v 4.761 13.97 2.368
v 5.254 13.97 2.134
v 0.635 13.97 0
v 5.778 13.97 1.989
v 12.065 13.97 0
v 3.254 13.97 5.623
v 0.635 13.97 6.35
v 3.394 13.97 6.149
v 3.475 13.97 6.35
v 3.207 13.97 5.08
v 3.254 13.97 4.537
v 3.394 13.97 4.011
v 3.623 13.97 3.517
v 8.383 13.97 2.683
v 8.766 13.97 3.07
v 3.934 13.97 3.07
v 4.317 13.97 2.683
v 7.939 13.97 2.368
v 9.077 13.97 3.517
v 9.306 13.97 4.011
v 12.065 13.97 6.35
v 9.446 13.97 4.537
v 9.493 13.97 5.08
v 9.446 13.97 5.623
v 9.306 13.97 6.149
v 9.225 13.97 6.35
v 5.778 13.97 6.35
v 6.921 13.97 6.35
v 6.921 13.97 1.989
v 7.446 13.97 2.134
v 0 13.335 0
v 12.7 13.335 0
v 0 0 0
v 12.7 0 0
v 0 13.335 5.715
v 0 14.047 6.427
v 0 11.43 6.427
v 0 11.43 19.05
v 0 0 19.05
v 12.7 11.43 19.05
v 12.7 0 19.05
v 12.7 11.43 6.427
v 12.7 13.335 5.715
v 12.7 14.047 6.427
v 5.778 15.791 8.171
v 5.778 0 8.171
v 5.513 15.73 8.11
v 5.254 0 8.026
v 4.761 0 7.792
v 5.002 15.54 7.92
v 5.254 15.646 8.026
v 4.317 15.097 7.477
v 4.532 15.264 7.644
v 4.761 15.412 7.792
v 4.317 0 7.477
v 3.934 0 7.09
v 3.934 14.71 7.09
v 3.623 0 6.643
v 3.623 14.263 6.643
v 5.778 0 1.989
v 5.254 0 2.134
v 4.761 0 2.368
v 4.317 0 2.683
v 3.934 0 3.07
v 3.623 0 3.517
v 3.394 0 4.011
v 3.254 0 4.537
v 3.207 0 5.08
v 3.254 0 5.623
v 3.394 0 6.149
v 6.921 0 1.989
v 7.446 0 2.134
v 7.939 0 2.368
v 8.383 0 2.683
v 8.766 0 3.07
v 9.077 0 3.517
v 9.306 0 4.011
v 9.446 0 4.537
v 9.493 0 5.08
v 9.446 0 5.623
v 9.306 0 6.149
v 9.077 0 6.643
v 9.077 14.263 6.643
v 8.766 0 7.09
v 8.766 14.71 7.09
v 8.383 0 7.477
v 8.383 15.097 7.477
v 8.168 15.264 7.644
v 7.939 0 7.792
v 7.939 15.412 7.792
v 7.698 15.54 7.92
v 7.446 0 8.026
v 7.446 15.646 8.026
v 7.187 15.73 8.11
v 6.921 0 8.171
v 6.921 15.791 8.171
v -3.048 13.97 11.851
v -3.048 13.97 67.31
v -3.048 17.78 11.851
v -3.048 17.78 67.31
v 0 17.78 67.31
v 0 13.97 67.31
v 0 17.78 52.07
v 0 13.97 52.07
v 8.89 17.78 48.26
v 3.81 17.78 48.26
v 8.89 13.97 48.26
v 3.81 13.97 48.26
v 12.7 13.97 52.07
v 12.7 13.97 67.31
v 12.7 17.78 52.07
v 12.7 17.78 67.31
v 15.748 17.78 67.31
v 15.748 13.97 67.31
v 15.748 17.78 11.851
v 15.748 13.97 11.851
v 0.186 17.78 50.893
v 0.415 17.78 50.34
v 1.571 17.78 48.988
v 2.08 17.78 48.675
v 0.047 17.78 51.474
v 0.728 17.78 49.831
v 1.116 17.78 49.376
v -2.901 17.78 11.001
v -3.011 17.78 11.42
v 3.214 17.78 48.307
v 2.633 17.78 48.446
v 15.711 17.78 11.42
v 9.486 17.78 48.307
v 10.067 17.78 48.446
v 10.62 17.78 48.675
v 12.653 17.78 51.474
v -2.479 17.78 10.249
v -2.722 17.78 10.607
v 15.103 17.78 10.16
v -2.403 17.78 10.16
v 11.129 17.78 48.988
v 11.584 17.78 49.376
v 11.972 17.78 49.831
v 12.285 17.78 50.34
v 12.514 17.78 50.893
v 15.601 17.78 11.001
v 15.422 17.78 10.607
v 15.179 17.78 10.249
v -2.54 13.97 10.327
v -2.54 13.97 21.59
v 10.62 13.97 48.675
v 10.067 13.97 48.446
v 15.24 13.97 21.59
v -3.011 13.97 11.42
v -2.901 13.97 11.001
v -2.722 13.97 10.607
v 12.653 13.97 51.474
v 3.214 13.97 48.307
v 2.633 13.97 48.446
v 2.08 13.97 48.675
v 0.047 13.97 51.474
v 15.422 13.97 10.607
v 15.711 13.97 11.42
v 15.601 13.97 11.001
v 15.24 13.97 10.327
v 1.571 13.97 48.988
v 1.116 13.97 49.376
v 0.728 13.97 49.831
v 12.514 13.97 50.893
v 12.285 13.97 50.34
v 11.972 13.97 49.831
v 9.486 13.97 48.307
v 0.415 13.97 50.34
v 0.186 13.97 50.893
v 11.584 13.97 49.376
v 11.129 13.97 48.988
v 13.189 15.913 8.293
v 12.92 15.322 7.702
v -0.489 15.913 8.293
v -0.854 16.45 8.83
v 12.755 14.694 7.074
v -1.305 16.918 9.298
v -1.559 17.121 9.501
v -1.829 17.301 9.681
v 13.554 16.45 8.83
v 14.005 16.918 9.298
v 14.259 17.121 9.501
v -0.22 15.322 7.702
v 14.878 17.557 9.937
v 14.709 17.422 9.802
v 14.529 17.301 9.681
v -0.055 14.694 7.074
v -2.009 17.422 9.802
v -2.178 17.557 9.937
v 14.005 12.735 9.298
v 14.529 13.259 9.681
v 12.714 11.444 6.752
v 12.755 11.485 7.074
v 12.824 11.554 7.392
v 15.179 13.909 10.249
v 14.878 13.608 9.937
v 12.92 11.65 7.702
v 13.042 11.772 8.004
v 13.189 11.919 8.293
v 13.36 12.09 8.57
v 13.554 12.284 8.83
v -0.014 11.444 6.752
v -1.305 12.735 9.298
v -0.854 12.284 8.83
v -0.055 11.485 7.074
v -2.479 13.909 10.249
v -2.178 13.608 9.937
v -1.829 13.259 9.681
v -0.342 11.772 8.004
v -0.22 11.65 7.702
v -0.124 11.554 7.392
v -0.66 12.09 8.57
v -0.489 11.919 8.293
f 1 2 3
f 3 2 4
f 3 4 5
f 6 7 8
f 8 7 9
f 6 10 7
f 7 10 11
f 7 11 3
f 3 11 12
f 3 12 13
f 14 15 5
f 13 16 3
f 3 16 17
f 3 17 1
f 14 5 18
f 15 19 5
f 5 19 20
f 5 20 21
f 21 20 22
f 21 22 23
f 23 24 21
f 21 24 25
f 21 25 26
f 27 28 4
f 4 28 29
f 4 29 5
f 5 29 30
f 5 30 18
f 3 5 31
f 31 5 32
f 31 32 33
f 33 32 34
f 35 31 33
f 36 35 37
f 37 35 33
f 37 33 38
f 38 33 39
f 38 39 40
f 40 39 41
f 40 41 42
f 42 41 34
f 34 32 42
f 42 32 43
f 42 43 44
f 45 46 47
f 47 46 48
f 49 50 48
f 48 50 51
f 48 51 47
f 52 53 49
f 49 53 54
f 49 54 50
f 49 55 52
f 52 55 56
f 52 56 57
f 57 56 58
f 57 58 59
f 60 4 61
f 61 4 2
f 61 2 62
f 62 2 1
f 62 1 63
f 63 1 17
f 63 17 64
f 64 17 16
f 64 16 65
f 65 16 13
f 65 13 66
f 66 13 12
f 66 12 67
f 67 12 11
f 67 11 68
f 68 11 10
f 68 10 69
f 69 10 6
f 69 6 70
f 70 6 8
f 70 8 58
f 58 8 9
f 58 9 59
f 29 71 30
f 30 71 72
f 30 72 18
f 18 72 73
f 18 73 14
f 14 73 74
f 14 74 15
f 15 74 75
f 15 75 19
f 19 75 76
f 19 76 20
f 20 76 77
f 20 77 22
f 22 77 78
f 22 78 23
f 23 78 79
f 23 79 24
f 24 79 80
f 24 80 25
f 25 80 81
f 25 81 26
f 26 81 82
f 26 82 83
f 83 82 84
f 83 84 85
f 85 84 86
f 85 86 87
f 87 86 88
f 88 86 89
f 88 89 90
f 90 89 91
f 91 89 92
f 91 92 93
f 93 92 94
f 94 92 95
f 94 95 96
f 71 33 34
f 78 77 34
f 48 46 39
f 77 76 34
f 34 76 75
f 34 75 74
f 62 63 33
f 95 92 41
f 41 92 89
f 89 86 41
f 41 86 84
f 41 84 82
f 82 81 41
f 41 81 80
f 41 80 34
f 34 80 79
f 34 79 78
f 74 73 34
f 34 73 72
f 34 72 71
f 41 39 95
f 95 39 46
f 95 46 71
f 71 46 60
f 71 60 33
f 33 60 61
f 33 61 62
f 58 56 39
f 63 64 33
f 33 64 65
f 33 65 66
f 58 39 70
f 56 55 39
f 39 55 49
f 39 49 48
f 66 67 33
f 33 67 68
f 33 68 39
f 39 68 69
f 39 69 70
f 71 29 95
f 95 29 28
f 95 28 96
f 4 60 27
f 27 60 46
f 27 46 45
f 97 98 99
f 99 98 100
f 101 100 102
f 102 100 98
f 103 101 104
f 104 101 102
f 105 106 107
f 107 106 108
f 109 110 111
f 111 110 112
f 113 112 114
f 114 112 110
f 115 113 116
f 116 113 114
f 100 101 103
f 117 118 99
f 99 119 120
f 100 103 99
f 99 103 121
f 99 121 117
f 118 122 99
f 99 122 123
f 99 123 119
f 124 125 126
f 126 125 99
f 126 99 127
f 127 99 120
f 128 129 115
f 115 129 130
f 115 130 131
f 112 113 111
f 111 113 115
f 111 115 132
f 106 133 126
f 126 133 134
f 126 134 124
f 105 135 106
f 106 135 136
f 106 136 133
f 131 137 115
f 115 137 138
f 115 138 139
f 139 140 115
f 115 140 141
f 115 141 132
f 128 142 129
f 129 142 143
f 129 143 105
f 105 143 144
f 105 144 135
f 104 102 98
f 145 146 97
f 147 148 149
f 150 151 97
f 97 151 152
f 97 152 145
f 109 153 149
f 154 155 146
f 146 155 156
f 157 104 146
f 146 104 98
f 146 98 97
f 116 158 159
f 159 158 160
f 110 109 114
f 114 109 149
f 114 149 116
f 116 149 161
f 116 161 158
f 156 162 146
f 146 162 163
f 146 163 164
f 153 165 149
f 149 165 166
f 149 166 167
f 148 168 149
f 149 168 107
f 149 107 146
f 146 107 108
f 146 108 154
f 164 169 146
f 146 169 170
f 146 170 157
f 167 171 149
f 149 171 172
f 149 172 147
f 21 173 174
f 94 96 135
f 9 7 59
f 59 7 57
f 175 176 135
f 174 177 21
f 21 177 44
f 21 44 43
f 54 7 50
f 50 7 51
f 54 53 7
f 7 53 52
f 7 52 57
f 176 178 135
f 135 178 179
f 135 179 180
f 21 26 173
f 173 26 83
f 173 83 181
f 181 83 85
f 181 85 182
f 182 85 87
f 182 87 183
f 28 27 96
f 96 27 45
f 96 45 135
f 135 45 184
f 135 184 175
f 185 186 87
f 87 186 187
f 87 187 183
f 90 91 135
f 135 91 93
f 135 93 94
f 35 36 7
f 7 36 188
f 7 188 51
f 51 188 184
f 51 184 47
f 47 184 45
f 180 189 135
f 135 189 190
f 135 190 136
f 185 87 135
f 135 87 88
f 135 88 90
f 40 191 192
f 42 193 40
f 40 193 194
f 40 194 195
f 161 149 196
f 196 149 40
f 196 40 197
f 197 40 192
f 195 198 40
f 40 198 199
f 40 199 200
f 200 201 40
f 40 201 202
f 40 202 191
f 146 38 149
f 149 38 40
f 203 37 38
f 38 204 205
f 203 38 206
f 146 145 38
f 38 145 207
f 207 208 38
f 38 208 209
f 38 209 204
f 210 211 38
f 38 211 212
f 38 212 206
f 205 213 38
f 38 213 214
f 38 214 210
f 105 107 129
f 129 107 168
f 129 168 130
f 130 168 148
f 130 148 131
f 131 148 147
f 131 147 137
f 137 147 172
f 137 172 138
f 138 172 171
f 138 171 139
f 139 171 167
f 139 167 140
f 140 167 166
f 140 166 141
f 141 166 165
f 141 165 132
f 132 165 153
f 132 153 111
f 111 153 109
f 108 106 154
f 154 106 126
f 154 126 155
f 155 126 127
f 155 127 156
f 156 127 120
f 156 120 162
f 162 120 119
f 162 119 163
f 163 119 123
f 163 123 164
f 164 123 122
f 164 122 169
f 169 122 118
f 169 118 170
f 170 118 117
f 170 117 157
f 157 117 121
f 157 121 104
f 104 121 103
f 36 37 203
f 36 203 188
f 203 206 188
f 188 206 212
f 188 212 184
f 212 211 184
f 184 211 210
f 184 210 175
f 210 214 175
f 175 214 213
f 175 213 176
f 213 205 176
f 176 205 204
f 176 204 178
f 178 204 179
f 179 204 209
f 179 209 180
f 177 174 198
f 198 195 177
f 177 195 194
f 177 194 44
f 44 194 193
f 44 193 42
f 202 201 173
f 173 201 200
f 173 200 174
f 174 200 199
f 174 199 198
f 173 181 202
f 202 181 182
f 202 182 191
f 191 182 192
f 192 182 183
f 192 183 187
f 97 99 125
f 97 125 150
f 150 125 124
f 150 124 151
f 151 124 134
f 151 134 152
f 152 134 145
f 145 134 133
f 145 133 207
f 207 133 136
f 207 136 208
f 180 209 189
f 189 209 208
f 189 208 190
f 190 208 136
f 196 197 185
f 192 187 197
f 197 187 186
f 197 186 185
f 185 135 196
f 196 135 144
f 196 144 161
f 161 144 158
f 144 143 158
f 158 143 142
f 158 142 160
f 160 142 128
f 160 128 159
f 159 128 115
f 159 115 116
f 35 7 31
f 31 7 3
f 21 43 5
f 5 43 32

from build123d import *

# Parameters (mm, degrees)
SKETCH1_W           = 12.7
SKETCH1_H           = 19.05
BOSS_EXTRUDE1_DEPTH = 13.97
SKETCH2_W           = 12.7
SKETCH2_H           = 8.89
BOSS_EXTRUDE2_DEPTH = 3.81
CHAMFER3_SIZE       = 3.81
CHAMFER5_SIZE       = 2.54
FILLET1_R           = 3.81
FILLET2_R           = 3.81
FILLET3_R           = 2.54
CHAMFER6_SIZE       = 0.635


with BuildPart() as part:
    # Sketch1 → Boss-Extrude1 (new body)
    with BuildSketch(Plane(origin=(0, 0, 0), x_dir=(1, 0, 0), z_dir=(0, 1, 0))):
        with Locations((6.35, -9.525)):
            Rectangle(SKETCH1_W, SKETCH1_H)
        with BuildLine():
            Line((5.7785, -1.989141169), (5.7785, -8.170858831))
            ThreePointArc((5.7785, -8.170858831), (3.20675, -5.08), (5.7785, -1.989141169))
        make_face(mode=Mode.SUBTRACT)
        with BuildLine():
            ThreePointArc((6.9215, -1.989141169), (9.49325, -5.08), (6.9215, -8.170858831))
            Line((6.9215, -8.170858831), (6.9215, -1.989141169))
        make_face(mode=Mode.SUBTRACT)
    extrude(amount=BOSS_EXTRUDE1_DEPTH)

    # Sketch2 → Boss-Extrude2 (add)
    with BuildSketch(Plane(origin=(0, 13.97, 0), x_dir=(1, 0, 0), z_dir=(0, 1, 0))):
        Polygon((0, -10.16), (-3.048, -10.16), (-3.048, -67.31), (0, -67.31), (0, -48.26), (12.7, -48.26), (12.7, -67.31), (15.748, -67.31), (15.748, -10.16), (12.7, -10.16), (12.7, -19.05), (0, -19.05), align=None)
        with Locations((6.35, -14.605)):
            Rectangle(SKETCH2_W, SKETCH2_H)
    extrude(amount=BOSS_EXTRUDE2_DEPTH)

    # Chamfer3
    # the kernel refuses this chamfer: 3.81 mm, written as the material it adds along each edge
    with BuildSketch(Plane(origin=(12.7, 13.97, 10.16), x_dir=(0, -0.027495876610586382, -0.9996219169112968), z_dir=(-1, 0, 0))) as chamfer3_piece_1_section:
        Polygon((CHAMFER3_SIZE * 0.999621916911, -CHAMFER3_SIZE * 0.0274958766106), (-CHAMFER3_SIZE * 0.0274958766106, -CHAMFER3_SIZE * 0.999621916911), (0, 0), align=None)
    chamfer3_piece_1 = extrude(amount=12.7, mode=Mode.PRIVATE)
    chamfer3_piece_1 = chamfer3_piece_1 - Plane(origin=(6.35, 15.278434863, 5.08), x_dir=(-0.18181818181819312, 0, 0.9833321660356314), z_dir=(0, -1, 0)) * Cylinder(3.14325, 41, mode=Mode.PRIVATE)
    add(chamfer3_piece_1)
    with BuildSketch(Plane(origin=(22.498112184, 13.97, 10.16), x_dir=(0, -0.027495876610586382, -0.9996219169112968), z_dir=(-1, 0, 0))) as chamfer3_piece_2_section:
        Polygon((CHAMFER3_SIZE * 0.999621916911, -CHAMFER3_SIZE * 0.0274958766106), (-CHAMFER3_SIZE * 0.0274958766106, -CHAMFER3_SIZE * 0.999621916911), (0, 0), align=None)
    chamfer3_piece_2 = extrude(amount=32.296224368, mode=Mode.PRIVATE)
    chamfer3_piece_2 = split(chamfer3_piece_2, bisect_by=Plane(origin=(5.7785, 14.588702158, 7.587404322), z_dir=(1, 0, 0)), keep=Keep.TOP, mode=Mode.PRIVATE)
    chamfer3_piece_2 = split(chamfer3_piece_2, bisect_by=Plane(origin=(6.9215, 14.588702158, 7.587404322), z_dir=(-1, 0, 0)), keep=Keep.TOP, mode=Mode.PRIVATE)
    add(chamfer3_piece_2)

    # Chamfer5
    chamfer5_edges = [part.edges().sort_by_distance(p)[0] for p in [
        (6.35, 13.97, 19.05),
        (12.7, 13.97, 14.605),
        (0, 13.97, 14.605),
    ]]
    chamfer(chamfer5_edges, length=CHAMFER5_SIZE)

    # Fillet1
    fillet1_edges = [part.edges().sort_by_distance(p)[0] for p in [
        (0, 15.875, 48.26),
        (12.7, 15.875, 48.26),
    ]]
    fillet(fillet1_edges, radius=FILLET1_R)

    # Fillet2
    # the kernel refuses this fillet: 3.81 mm, written as the material it adds along each edge
    with BuildSketch(Plane(origin=(0, 2.09744408, 10.16), x_dir=(-1.0, 0, -1.5694648846796446e-12), z_dir=(0, 1, 0))) as fillet2_piece_1_section:
        with BuildLine():
            CenterArc((3.81, -3.733022368), FILLET2_R, 101.536959033, 78.463040967)
            Line((0, -3.733022368), (-0.0762, -3.733022368))
            Line((-0.0762, -3.733022368), (-0.0762, 0))
            Line((-0.0762, 0), (0, 0.0762))
            ThreePointArc((0, 0.0762), (1.524, 0.0762), (3.03276, 0.074660447))
            Line((3.03276, 0.074660447), (3.048, 0))
        make_face()
    fillet2_piece_1 = extrude(amount=15.68255592, mode=Mode.PRIVATE)
    fillet2_piece_1 = split(fillet2_piece_1, bisect_by=Plane(origin=(-0.488499052, 13.97, 9.10243743), z_dir=(0, -1, 0)), keep=Keep.TOP, mode=Mode.PRIVATE)
    fillet2_piece_1 = split(fillet2_piece_1, bisect_by=Plane(origin=(-1.001374289, 12.431374289, 9.10243743), z_dir=(0.7071067811865477, 0.7071067811865475, 0)), keep=Keep.TOP, mode=Mode.PRIVATE)
    add(fillet2_piece_1)
    with BuildSketch(Plane(origin=(0, 2.09744408, 10.16), x_dir=(-1.0, 0, -1.5694648846796446e-12), z_dir=(0, 1, 0))) as fillet2_piece_2_section:
        with BuildLine():
            CenterArc((3.81, -3.733022368), FILLET2_R, 101.536959033, 78.463040967)
            Line((0, -3.733022368), (-0.0762, -3.733022368))
            Line((-0.0762, -3.733022368), (-0.0762, 0))
            Line((-0.0762, 0), (0, 0.0762))
            ThreePointArc((0, 0.0762), (1.524, 0.0762), (3.03276, 0.074660447))
            Line((3.03276, 0.074660447), (3.048, 0))
        make_face()
    fillet2_piece_2 = extrude(amount=15.68255592, mode=Mode.PRIVATE)
    fillet2_piece_2 = split(fillet2_piece_2, bisect_by=Plane(origin=(-2.842111613, 13.97, 10.172095318), z_dir=(0, 1, 0)), keep=Keep.TOP, mode=Mode.PRIVATE)
    fillet2_piece_2 = split(fillet2_piece_2, bisect_by=Plane(origin=(-2.766583712, 14.196583712, 10.172095318), z_dir=(-0.7071067811865477, -0.7071067811865475, 0)), keep=Keep.TOP, mode=Mode.PRIVATE)
    add(fillet2_piece_2)
    with BuildSketch(Plane(origin=(0, 2.09744408, 10.16), x_dir=(-1.0, 0, -1.5694648846796446e-12), z_dir=(0, 1, 0))) as fillet2_piece_3_section:
        with BuildLine():
            CenterArc((3.81, -3.733022368), FILLET2_R, 101.536959033, 78.463040967)
            Line((0, -3.733022368), (-0.0762, -3.733022368))
            Line((-0.0762, -3.733022368), (-0.0762, 0))
            Line((-0.0762, 0), (0, 0.0762))
            ThreePointArc((0, 0.0762), (1.524, 0.0762), (3.03276, 0.074660447))
            Line((3.03276, 0.074660447), (3.048, 0))
        make_face()
    fillet2_piece_3 = extrude(amount=15.68255592, mode=Mode.PRIVATE)
    fillet2_piece_3 = split(fillet2_piece_3, bisect_by=Plane(origin=(-0.871394664, 13.97, 9.510267837), z_dir=(0, 1, 0)), keep=Keep.TOP, mode=Mode.PRIVATE)
    fillet2_piece_3 = split(fillet2_piece_3, bisect_by=Plane(origin=(-2.496213957, 13.926213957, 9.510267837), z_dir=(0.7071067811865477, 0.7071067811865475, 0)), keep=Keep.TOP, mode=Mode.PRIVATE)
    fillet2_piece_3 = split(fillet2_piece_3, bisect_by=Plane(origin=(-0.871394664, 16.340650543, 8.720650543), z_dir=(0, -0.7071067811862648, 0.7071067811868302)), keep=Keep.TOP, mode=Mode.PRIVATE)
    add(fillet2_piece_3)
    with BuildSketch(Plane(origin=(12.7, 17.78, 10.16), x_dir=(1.0, 0, -1.0525263949987076e-12), z_dir=(0, -1, 0))) as fillet2_piece_4_section:
        with BuildLine():
            CenterArc((3.81, -3.733022368), FILLET2_R, 101.536959033, 78.463040967)
            Line((0, -3.733022368), (-0.0762, -3.733022368))
            Line((-0.0762, -3.733022368), (-0.0762, 0))
            Line((-0.0762, 0), (0, 0.0762))
            ThreePointArc((0, 0.0762), (1.524, 0.0762), (3.03276, 0.074660447))
            Line((3.03276, 0.074660447), (3.048, 0))
        make_face()
    fillet2_piece_4 = extrude(amount=15.68255592, mode=Mode.PRIVATE)
    fillet2_piece_4 = split(fillet2_piece_4, bisect_by=Plane(origin=(13.571394664, 13.97, 9.510267837), z_dir=(0, 1, 0)), keep=Keep.TOP, mode=Mode.PRIVATE)
    fillet2_piece_4 = split(fillet2_piece_4, bisect_by=Plane(origin=(15.196213957, 13.926213957, 9.510267837), z_dir=(-0.7071067811865479, 0.7071067811865474, 0)), keep=Keep.TOP, mode=Mode.PRIVATE)
    fillet2_piece_4 = split(fillet2_piece_4, bisect_by=Plane(origin=(13.571394664, 16.340650543, 8.720650543), z_dir=(0, -0.7071067811862648, 0.7071067811868302)), keep=Keep.TOP, mode=Mode.PRIVATE)
    add(fillet2_piece_4)
    with BuildSketch(Plane(origin=(12.7, 17.78, 10.16), x_dir=(1.0, 0, -1.0525263949987076e-12), z_dir=(0, -1, 0))) as fillet2_piece_5_section:
        with BuildLine():
            CenterArc((3.81, -3.733022368), FILLET2_R, 101.536959033, 78.463040967)
            Line((0, -3.733022368), (-0.0762, -3.733022368))
            Line((-0.0762, -3.733022368), (-0.0762, 0))
            Line((-0.0762, 0), (0, 0.0762))
            ThreePointArc((0, 0.0762), (1.524, 0.0762), (3.03276, 0.074660447))
            Line((3.03276, 0.074660447), (3.048, 0))
        make_face()
    fillet2_piece_5 = extrude(amount=15.68255592, mode=Mode.PRIVATE)
    fillet2_piece_5 = split(fillet2_piece_5, bisect_by=Plane(origin=(13.188499052, 13.97, 9.10243743), z_dir=(0, -1, 0)), keep=Keep.TOP, mode=Mode.PRIVATE)
    fillet2_piece_5 = split(fillet2_piece_5, bisect_by=Plane(origin=(13.701374289, 12.431374289, 9.10243743), z_dir=(-0.7071067811865479, 0.7071067811865474, 0)), keep=Keep.TOP, mode=Mode.PRIVATE)
    add(fillet2_piece_5)
    with BuildSketch(Plane(origin=(12.7, 17.78, 10.16), x_dir=(1.0, 0, -1.0525263949987076e-12), z_dir=(0, -1, 0))) as fillet2_piece_6_section:
        with BuildLine():
            CenterArc((3.81, -3.733022368), FILLET2_R, 101.536959033, 78.463040967)
            Line((0, -3.733022368), (-0.0762, -3.733022368))
            Line((-0.0762, -3.733022368), (-0.0762, 0))
            Line((-0.0762, 0), (0, 0.0762))
            ThreePointArc((0, 0.0762), (1.524, 0.0762), (3.03276, 0.074660447))
            Line((3.03276, 0.074660447), (3.048, 0))
        make_face()
    fillet2_piece_6 = extrude(amount=15.68255592, mode=Mode.PRIVATE)
    fillet2_piece_6 = split(fillet2_piece_6, bisect_by=Plane(origin=(15.542111613, 13.97, 10.172095318), z_dir=(0, 1, 0)), keep=Keep.TOP, mode=Mode.PRIVATE)
    fillet2_piece_6 = split(fillet2_piece_6, bisect_by=Plane(origin=(15.466583712, 14.196583712, 10.172095318), z_dir=(0.7071067811865479, -0.7071067811865474, 0)), keep=Keep.TOP, mode=Mode.PRIVATE)
    add(fillet2_piece_6)

    # Fillet3
    fillet3_edges = [part.edges().sort_by_distance(p)[0] for p in [
        (-3.048, 15.875, 10.16),
        (15.748, 15.875, 10.16),
    ]]
    fillet(fillet3_edges, radius=FILLET3_R)

    # Chamfer6
    chamfer6_edges = [part.edges().sort_by_distance(p)[0] for p in [
        (12.7, 13.97, 3.175),
        (0, 13.97, 3.175),
    ]]
    chamfer(chamfer6_edges, length=CHAMFER6_SIZE)


solid = part.part
